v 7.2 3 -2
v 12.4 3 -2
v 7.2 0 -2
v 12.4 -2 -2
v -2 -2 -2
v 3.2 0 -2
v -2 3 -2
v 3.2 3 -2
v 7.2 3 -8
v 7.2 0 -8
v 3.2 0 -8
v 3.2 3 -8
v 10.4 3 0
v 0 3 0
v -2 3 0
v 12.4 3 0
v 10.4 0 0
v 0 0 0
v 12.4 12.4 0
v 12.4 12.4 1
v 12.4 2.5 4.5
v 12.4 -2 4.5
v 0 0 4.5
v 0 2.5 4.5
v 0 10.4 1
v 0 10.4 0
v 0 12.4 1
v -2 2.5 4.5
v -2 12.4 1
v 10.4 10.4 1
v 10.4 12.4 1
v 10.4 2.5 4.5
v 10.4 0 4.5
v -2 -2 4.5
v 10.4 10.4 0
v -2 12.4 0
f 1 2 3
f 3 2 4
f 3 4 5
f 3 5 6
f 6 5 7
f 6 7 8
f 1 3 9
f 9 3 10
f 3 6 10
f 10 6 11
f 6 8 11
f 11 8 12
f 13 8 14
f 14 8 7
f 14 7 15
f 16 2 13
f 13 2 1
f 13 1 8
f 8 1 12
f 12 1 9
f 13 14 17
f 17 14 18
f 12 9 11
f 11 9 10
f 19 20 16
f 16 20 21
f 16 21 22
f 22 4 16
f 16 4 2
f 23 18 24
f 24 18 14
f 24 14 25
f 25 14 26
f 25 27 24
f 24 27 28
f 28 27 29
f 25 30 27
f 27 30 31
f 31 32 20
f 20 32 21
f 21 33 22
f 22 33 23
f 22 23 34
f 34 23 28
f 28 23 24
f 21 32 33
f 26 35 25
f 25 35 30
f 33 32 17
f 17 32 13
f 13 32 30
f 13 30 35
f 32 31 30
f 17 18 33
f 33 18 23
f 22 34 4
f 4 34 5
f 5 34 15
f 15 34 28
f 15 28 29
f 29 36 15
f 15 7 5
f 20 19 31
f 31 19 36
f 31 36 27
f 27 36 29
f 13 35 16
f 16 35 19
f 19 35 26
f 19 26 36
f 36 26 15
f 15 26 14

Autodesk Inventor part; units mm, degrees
ref_plane "YZ Plane" through (0, 0, 0) normal (1, 0, 0) x (0, 1, 0)
ref_plane "XZ Plane" through (0, 0, 0) normal (0, 1, 0) x (-1, 0, 0)
sketch "Sketch1" plane through (0, 0, 0) normal (0, 0, 1) x (1, 0, 0)
  line L0 (0, 0) -> (10.4, 0)
  line L1 (10.4, 0) -> (10.4, 10.4)
  line L2 (10.4, 10.4) -> (0, 10.4)
  line L3 (0, 10.4) -> (0, 0)
  line L4 (-2, 12.4) -> (12.4, 12.4)
  line L5 (12.4, 12.4) -> (12.4, -2)
  line L6 (12.4, -2) -> (-2, -2)
  line L7 (-2, -2) -> (-2, 12.4)
  dimension "d0" = 10.4
  dimension "d1" = 10.4
  dimension "d2" = 2
extrude "Extrusion1" add sketch "Sketch1" along normal blind 1
sketch "Sketch2" plane through (12.4, -2, 0) normal (1, 0, 0) x (0, 0, -1)
  line L0 (0, 14.4) -> (-1, 14.4) projected
  line L1 (-1, 14.4) -> (-4.5, 4.5)
  line L2 (-4.5, 4.5) -> (-4.5, 0)
  line L3 (0, 0) -> (-1, 0) projected
  line L4 (-4.5, 0) -> (-1, 0)
  line L5 (-1, 0) -> (-1, 14.4)
  line L6 (-1, 14.4) -> (-4.5, 14.4)
  line L7 (-4.5, 14.4) -> (-4.5, 4.5)
  point P0 (0, 2)
  dimension "d5" = 4.5
  dimension "d6" = 4.5
extrude "Extrusion3" add sketch "Sketch2" against normal up to surface (2 mm away) contours L5 L4 L2 L1
ref_plane "Work Plane1" through (5.2, 0, 0) normal (1, 0, 0) x (0, 0, -1)
mirror "Mirror1" about plane through (5.2, 0, 0) normal (1, 0, 0) of "Extrusion3"
sketch "Sketch5" plane through (-2, -2, 0) normal (0, -1, 0) x (1, 0, 0)
  line L0 (14.4, 0) -> (0, 0) projected
  line L1 (14.4, 0) -> (14.4, 4.5) projected
  line L2 (0, 0) -> (14.4, 0)
  line L3 (14.4, 0) -> (14.4, 4.5)
  line L4 (14.4, 4.5) -> (0, 4.5)
  line L5 (0, 4.5) -> (0, 0)
  point P0 (2, 0)
extrude "Extrusion4" add sketch "Sketch5" against normal blind 2
sketch "Sketch6" plane through (0, 0, 0) normal (0, 0, -1) x (-1, 0, 0)
  line L0 (-7.2, 3) -> (-3.2, 3)
  line L1 (-3.2, 3) -> (-3.2, 0)
  line L2 (-3.2, 0) -> (-7.2, 0)
  line L3 (-7.2, 0) -> (-7.2, 3)
  line L4 (-12.4, -2) -> (2, -2) projected
  line L5 (-7.2, 3) -> (-12.4, 3)
  line L6 (-3.2, 3) -> (2, 3)
  line L7 (-10.4, -2) -> (0, -2)
  line L8 (-12.4, 3) -> (-12.4, -2)
  line L9 (2, 3) -> (2, -2)
  point P0 (0, 0)
  point P1 (-5.2, 3)
  point P2 (-5.2, -2)
  dimension "d15" = 4
  dimension "d16" = 3
  dimension "d17" = 2
extrude "Extrusion5" add sketch "Sketch6" along normal blind 8 contours L0 L1 L2 L3
extrude "Extrusion6" add sketch "Sketch6" along normal blind 2 contours L3 L2 L1 L6 L9 L4 L8 L5
sketch "Sketch4" plane through (-2, -2, 0) normal (0, -1, 0) x (1, 0, 0)
  line L0 (14.4, 1) -> (0, 1) projected
  line L1 (0, 1) -> (14.4, 1)
  line L2 (0, 1) -> (0, 4.5)
  line L3 (0, 4.5) -> (2, 4.5)
  line L4 (2, 4.5) -> (2, 3)
  line L5 (2, 3) -> (12.4, 3)
  line L6 (12.4, 3) -> (12.4, 4.5)
  line L7 (12.4, 4.5) -> (14.4, 4.5)
  line L8 (14.4, 4.5) -> (14.4, 1)
  point P0 (2, 0)
  point P1 (12.4, 1)
  point P2 (2, 1)
  dimension "d8" = 2
properties part number "Encoder Mount" material "ABS Plastic"
